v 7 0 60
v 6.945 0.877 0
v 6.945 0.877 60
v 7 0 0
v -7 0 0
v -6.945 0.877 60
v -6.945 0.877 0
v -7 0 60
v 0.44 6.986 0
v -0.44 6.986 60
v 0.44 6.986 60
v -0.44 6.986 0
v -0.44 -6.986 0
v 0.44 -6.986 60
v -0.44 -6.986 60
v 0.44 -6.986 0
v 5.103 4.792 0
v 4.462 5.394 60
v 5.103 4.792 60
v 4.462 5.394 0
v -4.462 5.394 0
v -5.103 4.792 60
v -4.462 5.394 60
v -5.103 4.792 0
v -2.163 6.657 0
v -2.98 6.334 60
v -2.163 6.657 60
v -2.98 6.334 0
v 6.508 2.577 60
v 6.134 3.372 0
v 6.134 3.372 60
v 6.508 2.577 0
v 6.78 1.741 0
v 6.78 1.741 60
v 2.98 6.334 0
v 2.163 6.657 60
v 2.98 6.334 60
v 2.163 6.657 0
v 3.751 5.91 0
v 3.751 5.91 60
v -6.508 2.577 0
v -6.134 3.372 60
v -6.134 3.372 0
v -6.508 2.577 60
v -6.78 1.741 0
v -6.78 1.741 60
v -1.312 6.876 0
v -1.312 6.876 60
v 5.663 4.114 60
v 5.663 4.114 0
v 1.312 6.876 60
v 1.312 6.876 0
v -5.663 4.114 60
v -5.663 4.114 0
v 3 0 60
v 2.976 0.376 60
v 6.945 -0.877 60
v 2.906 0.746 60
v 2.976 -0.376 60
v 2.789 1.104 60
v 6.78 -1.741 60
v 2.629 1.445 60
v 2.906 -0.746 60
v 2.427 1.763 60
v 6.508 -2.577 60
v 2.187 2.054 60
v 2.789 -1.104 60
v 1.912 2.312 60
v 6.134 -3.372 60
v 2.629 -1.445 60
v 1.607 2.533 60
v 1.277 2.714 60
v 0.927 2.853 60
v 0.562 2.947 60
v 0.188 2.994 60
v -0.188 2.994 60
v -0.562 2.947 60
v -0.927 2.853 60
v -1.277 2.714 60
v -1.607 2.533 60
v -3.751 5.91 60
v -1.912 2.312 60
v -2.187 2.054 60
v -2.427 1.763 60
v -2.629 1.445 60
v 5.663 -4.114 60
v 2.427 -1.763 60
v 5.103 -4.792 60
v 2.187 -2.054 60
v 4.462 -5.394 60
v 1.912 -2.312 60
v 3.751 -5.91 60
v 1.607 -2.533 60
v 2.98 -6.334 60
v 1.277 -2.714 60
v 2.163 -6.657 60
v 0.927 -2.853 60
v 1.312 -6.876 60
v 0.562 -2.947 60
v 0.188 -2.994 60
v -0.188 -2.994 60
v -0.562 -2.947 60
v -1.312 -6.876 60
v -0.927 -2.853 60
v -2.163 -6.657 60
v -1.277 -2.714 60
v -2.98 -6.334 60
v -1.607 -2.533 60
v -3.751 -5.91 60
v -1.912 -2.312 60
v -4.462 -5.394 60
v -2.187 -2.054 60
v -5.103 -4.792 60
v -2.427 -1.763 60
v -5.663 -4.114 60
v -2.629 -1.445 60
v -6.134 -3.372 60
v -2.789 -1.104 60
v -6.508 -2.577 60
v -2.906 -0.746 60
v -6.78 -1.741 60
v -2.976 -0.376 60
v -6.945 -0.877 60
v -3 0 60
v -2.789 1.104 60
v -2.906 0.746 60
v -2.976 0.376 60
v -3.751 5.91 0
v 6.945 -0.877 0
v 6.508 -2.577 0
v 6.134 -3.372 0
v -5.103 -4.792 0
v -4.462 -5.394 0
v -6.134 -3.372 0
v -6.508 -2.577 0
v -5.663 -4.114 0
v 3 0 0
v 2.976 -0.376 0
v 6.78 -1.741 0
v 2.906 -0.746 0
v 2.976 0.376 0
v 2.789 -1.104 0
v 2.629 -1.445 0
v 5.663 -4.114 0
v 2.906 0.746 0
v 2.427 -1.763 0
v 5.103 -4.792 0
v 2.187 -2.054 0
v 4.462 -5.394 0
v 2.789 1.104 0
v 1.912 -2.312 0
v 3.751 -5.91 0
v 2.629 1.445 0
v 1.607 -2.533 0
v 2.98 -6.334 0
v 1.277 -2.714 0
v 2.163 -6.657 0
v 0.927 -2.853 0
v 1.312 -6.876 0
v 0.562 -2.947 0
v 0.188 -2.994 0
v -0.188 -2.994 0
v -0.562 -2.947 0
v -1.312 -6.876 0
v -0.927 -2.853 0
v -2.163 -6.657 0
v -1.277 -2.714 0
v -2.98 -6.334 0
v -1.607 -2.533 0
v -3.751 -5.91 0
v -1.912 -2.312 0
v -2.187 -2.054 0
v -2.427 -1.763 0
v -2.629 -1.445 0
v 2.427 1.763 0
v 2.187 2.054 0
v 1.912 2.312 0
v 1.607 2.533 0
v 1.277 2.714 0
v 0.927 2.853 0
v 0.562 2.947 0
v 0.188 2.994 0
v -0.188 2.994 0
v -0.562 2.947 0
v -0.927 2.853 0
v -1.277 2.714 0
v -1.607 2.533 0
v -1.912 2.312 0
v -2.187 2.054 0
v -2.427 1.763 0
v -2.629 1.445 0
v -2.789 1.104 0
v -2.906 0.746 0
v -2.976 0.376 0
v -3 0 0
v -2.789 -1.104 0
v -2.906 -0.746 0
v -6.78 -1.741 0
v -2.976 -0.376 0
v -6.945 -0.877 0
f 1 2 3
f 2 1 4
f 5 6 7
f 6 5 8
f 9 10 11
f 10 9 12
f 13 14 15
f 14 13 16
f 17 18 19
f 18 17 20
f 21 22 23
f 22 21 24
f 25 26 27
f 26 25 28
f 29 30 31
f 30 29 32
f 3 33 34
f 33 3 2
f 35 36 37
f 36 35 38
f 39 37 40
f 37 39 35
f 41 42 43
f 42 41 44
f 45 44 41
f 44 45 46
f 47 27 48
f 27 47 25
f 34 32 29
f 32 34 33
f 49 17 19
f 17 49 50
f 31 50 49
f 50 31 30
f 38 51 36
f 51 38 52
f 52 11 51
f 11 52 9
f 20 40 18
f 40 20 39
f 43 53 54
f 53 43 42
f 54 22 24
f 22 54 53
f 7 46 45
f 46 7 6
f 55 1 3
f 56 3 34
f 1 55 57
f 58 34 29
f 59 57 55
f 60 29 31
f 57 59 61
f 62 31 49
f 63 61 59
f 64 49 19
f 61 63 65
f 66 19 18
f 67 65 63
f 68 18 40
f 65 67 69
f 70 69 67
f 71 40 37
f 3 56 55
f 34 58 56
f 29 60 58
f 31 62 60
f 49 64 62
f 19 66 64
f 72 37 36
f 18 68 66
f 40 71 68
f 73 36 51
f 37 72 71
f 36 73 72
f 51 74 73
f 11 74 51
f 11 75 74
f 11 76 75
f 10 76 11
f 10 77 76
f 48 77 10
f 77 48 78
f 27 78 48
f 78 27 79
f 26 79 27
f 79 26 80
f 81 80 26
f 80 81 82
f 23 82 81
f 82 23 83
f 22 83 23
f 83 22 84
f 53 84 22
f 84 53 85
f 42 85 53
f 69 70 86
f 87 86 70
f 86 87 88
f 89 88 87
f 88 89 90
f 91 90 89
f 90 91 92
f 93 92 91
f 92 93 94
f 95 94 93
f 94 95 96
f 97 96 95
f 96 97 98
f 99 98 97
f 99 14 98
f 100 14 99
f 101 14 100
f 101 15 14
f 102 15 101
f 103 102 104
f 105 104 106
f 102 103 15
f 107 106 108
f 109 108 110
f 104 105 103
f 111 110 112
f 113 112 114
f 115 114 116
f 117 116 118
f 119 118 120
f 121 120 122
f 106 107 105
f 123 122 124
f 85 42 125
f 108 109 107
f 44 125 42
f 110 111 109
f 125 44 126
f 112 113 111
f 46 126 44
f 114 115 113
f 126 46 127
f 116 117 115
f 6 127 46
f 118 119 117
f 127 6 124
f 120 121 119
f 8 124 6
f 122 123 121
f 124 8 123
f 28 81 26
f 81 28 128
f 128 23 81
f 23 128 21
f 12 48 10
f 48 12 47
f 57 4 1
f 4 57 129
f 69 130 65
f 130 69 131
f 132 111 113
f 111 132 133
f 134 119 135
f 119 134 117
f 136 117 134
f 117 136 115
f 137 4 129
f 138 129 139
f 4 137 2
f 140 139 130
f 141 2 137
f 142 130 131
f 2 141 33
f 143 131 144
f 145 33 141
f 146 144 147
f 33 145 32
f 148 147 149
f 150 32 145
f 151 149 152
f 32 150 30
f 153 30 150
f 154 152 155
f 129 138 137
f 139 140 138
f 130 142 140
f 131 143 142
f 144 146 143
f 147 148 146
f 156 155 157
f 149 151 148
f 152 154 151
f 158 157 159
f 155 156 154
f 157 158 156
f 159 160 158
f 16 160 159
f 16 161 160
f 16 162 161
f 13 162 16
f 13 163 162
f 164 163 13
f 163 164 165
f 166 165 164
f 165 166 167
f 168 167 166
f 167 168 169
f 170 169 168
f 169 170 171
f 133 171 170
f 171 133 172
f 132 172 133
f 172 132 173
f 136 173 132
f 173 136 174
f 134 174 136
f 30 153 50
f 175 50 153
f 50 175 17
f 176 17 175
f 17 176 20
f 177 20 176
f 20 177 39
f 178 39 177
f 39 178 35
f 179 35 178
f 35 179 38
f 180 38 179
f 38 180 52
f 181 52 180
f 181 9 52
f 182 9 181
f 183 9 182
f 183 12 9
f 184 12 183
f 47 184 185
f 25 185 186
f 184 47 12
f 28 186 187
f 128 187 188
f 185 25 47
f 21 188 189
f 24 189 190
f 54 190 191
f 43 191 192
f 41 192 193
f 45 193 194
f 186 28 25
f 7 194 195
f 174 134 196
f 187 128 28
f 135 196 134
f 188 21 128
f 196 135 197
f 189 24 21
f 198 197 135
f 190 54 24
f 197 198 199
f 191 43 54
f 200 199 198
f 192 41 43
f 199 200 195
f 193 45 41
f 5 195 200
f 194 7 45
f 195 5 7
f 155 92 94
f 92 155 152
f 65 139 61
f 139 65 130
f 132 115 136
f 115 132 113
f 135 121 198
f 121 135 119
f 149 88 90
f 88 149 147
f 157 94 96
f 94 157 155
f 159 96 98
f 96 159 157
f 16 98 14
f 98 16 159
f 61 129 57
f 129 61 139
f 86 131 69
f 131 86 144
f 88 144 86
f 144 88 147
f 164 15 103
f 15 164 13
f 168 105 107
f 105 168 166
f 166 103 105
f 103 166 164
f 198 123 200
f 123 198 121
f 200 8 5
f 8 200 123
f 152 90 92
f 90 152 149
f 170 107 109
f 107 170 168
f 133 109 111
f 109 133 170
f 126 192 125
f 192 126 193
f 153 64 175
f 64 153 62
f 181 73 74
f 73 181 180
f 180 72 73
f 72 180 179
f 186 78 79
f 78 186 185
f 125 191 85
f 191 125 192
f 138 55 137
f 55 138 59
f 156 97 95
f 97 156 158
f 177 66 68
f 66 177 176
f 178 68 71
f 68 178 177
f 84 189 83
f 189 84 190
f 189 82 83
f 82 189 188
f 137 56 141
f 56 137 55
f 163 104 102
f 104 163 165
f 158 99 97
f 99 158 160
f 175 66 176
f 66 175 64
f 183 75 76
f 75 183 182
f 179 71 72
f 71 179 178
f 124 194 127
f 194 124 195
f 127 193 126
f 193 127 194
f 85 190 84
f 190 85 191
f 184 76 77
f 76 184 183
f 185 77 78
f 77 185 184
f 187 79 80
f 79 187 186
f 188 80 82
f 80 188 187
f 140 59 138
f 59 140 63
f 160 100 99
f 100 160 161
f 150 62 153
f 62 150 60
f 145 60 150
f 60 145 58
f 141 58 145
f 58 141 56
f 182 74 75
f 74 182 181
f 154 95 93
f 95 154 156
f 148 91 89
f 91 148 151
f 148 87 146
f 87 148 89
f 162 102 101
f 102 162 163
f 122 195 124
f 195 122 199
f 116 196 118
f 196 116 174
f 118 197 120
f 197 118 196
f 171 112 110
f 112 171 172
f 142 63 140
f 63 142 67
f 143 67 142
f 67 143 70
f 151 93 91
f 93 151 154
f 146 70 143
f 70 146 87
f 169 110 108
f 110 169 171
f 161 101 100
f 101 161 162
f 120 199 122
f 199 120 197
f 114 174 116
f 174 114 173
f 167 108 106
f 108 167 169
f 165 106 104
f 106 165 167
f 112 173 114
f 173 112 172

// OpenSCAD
$fn = 50;


difference() {
	union() {
		cylinder(h = 60, r = 7.0000000000);
	}
	union() {
		translate(v = [0, 0, -100]) {
			cylinder(h = 200, r = 3.0000000000);
		}
	}
}
